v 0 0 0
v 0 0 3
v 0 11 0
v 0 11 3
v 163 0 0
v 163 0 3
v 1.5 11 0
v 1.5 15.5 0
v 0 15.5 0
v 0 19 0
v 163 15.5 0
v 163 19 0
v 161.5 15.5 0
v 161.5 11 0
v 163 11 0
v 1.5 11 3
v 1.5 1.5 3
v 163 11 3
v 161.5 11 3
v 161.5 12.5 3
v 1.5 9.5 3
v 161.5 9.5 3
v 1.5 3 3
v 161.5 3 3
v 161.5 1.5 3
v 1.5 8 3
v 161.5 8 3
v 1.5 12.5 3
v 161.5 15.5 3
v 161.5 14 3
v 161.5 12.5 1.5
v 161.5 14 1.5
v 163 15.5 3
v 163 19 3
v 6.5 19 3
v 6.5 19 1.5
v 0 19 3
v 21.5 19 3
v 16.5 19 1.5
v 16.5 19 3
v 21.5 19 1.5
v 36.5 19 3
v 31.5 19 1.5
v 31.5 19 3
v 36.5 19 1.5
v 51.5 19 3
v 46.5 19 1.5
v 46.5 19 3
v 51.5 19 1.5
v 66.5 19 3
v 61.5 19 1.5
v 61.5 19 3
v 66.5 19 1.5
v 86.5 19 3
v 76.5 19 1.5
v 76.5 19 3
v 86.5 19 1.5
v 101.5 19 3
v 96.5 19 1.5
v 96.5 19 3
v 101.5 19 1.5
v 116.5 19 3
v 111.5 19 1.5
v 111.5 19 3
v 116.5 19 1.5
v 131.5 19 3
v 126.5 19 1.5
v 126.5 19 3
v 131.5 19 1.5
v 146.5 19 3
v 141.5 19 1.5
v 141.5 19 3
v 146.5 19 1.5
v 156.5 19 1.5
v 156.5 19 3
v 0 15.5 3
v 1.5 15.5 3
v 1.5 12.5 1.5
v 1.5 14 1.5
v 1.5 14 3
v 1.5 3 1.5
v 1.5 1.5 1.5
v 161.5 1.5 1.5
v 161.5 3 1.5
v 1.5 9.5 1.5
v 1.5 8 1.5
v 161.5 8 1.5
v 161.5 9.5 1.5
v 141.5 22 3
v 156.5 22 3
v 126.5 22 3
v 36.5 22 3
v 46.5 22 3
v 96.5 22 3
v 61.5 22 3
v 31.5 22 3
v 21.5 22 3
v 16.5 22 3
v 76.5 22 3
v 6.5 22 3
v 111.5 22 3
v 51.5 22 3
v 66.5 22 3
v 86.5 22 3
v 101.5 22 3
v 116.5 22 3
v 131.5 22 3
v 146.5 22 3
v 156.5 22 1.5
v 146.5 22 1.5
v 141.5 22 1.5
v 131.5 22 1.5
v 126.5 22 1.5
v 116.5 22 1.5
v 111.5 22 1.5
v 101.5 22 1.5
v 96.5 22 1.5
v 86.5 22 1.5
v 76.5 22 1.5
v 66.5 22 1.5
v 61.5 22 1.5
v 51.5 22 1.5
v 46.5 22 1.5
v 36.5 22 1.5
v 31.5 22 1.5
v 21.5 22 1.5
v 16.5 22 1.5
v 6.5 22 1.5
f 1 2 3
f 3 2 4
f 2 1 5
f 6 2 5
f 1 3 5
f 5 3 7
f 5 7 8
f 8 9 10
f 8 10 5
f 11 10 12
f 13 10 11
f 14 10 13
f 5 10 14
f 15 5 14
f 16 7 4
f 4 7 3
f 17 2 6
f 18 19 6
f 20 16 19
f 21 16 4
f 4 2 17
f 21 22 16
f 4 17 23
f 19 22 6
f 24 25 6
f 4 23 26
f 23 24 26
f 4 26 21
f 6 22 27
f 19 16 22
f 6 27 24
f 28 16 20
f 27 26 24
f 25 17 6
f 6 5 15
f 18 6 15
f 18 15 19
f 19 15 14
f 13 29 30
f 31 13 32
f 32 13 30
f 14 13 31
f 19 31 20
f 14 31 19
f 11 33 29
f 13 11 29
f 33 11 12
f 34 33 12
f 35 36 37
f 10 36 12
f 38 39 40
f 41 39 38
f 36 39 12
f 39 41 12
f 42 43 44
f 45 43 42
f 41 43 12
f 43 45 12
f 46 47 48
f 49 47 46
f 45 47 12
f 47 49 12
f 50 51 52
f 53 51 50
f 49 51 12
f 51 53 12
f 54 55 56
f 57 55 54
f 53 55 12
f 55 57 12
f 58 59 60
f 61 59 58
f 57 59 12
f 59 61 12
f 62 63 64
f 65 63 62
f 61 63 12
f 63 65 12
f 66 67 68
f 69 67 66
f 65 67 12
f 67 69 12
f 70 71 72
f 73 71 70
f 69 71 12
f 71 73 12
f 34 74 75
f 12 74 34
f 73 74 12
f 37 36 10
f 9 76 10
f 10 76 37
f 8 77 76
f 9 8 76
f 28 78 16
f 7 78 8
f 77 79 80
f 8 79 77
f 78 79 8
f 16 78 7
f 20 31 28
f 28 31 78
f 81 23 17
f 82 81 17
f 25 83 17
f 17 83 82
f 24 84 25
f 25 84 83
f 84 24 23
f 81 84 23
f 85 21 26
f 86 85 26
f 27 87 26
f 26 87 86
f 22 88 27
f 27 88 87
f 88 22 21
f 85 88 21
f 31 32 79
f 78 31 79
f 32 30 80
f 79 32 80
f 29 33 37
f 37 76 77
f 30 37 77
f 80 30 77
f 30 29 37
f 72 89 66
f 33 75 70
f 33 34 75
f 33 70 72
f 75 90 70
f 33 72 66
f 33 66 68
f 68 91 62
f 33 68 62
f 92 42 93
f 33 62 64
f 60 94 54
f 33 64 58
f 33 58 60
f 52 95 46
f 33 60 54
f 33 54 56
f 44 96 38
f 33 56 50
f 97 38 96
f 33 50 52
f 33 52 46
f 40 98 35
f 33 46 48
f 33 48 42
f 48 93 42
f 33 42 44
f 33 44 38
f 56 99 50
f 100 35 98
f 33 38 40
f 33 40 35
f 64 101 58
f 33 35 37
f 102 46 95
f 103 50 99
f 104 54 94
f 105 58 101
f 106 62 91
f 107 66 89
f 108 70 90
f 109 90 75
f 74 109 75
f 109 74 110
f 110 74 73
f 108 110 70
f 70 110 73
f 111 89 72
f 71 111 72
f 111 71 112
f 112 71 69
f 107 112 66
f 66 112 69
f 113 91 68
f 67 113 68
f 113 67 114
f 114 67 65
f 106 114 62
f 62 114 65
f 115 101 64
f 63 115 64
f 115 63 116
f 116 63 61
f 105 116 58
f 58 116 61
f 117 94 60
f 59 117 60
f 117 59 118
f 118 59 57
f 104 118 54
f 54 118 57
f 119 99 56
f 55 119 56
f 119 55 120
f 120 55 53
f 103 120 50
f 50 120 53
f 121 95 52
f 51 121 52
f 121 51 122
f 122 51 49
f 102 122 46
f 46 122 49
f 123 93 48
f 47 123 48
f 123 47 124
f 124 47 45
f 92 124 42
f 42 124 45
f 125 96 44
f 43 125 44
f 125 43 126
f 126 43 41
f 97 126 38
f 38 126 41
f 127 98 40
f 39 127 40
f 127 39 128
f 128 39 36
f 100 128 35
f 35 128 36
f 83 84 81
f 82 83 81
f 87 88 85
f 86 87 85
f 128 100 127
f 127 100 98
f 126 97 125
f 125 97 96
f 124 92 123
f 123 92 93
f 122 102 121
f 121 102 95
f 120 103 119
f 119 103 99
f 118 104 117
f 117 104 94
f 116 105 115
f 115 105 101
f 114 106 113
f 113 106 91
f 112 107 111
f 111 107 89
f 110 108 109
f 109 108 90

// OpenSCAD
board = 160;
edge = 1.5;

depth = 2 * edge;
width = board + 2 * edge;

groove = 1.5;
faceSpace = 5;
mountSpace = 3;
pcbSpace = 5;

notchSpacing = 5;
notchWidth = 10;
notchHeight = 3;

height =
	edge +
	groove +
	faceSpace +
	groove +
	mountSpace +
	groove +
	pcbSpace +
	notchHeight;

faceTop = edge;
mountTop = faceTop + groove + faceSpace;
pcbTop = mountTop + groove + mountSpace;
baseTop = pcbTop + groove + pcbSpace;

notchCount = 10;
notchGap = board - notchCount * (notchSpacing + notchWidth);
notch1Left = edge + notchSpacing;
notch2Left = notch1Left + notchSpacing + notchWidth;
notch3Left = notch2Left + notchSpacing + notchWidth;
notch4Left = notch3Left + notchSpacing + notchWidth;
notch5Left = notch4Left + notchSpacing + notchWidth;
notch6Left = notch5Left + notchGap + notchWidth;
notch7Left = notch6Left + notchSpacing + notchWidth;
notch8Left = notch7Left + notchSpacing + notchWidth;
notch9Left = notch8Left + notchSpacing + notchWidth;
notch10Left = notch9Left + notchSpacing + notchWidth;

module hole(x, y, z, cx, cy, cz)
{
	translate([x, y, z]) cube([cx, cy, cz]);
}

module grooveHole(y, cx)
{
	hole(edge, y, edge, cx, groove, edge);
}

module notchHole(x, cx)
{
	hole(x, baseTop, edge, cx, notchHeight, edge);
}

module sideNotch(x)
{
	hole(x, pcbTop - edge, 0, edge, 2 * edge + groove, depth);
}

difference()
{
	cube([width, height, depth]);

	grooveHole(faceTop, board);
	grooveHole(mountTop, board);
	grooveHole(pcbTop, board);

	hole(0, baseTop, 0, width, notchHeight, edge);
	notchHole(0, notch1Left);
	notchHole(notch1Left + notchWidth, notchSpacing);
	notchHole(notch2Left + notchWidth, notchSpacing);
	notchHole(notch3Left + notchWidth, notchSpacing);
	notchHole(notch4Left + notchWidth, notchSpacing);
	notchHole(notch5Left + notchWidth, notchGap);
	notchHole(notch6Left + notchWidth, notchSpacing);
	notchHole(notch7Left + notchWidth, notchSpacing);
	notchHole(notch8Left + notchWidth, notchSpacing);
	notchHole(notch9Left + notchWidth, notchSpacing);
	notchHole(notch10Left + notchWidth, notchSpacing + edge);

	sideNotch(0);
	sideNotch(board + edge);
}
